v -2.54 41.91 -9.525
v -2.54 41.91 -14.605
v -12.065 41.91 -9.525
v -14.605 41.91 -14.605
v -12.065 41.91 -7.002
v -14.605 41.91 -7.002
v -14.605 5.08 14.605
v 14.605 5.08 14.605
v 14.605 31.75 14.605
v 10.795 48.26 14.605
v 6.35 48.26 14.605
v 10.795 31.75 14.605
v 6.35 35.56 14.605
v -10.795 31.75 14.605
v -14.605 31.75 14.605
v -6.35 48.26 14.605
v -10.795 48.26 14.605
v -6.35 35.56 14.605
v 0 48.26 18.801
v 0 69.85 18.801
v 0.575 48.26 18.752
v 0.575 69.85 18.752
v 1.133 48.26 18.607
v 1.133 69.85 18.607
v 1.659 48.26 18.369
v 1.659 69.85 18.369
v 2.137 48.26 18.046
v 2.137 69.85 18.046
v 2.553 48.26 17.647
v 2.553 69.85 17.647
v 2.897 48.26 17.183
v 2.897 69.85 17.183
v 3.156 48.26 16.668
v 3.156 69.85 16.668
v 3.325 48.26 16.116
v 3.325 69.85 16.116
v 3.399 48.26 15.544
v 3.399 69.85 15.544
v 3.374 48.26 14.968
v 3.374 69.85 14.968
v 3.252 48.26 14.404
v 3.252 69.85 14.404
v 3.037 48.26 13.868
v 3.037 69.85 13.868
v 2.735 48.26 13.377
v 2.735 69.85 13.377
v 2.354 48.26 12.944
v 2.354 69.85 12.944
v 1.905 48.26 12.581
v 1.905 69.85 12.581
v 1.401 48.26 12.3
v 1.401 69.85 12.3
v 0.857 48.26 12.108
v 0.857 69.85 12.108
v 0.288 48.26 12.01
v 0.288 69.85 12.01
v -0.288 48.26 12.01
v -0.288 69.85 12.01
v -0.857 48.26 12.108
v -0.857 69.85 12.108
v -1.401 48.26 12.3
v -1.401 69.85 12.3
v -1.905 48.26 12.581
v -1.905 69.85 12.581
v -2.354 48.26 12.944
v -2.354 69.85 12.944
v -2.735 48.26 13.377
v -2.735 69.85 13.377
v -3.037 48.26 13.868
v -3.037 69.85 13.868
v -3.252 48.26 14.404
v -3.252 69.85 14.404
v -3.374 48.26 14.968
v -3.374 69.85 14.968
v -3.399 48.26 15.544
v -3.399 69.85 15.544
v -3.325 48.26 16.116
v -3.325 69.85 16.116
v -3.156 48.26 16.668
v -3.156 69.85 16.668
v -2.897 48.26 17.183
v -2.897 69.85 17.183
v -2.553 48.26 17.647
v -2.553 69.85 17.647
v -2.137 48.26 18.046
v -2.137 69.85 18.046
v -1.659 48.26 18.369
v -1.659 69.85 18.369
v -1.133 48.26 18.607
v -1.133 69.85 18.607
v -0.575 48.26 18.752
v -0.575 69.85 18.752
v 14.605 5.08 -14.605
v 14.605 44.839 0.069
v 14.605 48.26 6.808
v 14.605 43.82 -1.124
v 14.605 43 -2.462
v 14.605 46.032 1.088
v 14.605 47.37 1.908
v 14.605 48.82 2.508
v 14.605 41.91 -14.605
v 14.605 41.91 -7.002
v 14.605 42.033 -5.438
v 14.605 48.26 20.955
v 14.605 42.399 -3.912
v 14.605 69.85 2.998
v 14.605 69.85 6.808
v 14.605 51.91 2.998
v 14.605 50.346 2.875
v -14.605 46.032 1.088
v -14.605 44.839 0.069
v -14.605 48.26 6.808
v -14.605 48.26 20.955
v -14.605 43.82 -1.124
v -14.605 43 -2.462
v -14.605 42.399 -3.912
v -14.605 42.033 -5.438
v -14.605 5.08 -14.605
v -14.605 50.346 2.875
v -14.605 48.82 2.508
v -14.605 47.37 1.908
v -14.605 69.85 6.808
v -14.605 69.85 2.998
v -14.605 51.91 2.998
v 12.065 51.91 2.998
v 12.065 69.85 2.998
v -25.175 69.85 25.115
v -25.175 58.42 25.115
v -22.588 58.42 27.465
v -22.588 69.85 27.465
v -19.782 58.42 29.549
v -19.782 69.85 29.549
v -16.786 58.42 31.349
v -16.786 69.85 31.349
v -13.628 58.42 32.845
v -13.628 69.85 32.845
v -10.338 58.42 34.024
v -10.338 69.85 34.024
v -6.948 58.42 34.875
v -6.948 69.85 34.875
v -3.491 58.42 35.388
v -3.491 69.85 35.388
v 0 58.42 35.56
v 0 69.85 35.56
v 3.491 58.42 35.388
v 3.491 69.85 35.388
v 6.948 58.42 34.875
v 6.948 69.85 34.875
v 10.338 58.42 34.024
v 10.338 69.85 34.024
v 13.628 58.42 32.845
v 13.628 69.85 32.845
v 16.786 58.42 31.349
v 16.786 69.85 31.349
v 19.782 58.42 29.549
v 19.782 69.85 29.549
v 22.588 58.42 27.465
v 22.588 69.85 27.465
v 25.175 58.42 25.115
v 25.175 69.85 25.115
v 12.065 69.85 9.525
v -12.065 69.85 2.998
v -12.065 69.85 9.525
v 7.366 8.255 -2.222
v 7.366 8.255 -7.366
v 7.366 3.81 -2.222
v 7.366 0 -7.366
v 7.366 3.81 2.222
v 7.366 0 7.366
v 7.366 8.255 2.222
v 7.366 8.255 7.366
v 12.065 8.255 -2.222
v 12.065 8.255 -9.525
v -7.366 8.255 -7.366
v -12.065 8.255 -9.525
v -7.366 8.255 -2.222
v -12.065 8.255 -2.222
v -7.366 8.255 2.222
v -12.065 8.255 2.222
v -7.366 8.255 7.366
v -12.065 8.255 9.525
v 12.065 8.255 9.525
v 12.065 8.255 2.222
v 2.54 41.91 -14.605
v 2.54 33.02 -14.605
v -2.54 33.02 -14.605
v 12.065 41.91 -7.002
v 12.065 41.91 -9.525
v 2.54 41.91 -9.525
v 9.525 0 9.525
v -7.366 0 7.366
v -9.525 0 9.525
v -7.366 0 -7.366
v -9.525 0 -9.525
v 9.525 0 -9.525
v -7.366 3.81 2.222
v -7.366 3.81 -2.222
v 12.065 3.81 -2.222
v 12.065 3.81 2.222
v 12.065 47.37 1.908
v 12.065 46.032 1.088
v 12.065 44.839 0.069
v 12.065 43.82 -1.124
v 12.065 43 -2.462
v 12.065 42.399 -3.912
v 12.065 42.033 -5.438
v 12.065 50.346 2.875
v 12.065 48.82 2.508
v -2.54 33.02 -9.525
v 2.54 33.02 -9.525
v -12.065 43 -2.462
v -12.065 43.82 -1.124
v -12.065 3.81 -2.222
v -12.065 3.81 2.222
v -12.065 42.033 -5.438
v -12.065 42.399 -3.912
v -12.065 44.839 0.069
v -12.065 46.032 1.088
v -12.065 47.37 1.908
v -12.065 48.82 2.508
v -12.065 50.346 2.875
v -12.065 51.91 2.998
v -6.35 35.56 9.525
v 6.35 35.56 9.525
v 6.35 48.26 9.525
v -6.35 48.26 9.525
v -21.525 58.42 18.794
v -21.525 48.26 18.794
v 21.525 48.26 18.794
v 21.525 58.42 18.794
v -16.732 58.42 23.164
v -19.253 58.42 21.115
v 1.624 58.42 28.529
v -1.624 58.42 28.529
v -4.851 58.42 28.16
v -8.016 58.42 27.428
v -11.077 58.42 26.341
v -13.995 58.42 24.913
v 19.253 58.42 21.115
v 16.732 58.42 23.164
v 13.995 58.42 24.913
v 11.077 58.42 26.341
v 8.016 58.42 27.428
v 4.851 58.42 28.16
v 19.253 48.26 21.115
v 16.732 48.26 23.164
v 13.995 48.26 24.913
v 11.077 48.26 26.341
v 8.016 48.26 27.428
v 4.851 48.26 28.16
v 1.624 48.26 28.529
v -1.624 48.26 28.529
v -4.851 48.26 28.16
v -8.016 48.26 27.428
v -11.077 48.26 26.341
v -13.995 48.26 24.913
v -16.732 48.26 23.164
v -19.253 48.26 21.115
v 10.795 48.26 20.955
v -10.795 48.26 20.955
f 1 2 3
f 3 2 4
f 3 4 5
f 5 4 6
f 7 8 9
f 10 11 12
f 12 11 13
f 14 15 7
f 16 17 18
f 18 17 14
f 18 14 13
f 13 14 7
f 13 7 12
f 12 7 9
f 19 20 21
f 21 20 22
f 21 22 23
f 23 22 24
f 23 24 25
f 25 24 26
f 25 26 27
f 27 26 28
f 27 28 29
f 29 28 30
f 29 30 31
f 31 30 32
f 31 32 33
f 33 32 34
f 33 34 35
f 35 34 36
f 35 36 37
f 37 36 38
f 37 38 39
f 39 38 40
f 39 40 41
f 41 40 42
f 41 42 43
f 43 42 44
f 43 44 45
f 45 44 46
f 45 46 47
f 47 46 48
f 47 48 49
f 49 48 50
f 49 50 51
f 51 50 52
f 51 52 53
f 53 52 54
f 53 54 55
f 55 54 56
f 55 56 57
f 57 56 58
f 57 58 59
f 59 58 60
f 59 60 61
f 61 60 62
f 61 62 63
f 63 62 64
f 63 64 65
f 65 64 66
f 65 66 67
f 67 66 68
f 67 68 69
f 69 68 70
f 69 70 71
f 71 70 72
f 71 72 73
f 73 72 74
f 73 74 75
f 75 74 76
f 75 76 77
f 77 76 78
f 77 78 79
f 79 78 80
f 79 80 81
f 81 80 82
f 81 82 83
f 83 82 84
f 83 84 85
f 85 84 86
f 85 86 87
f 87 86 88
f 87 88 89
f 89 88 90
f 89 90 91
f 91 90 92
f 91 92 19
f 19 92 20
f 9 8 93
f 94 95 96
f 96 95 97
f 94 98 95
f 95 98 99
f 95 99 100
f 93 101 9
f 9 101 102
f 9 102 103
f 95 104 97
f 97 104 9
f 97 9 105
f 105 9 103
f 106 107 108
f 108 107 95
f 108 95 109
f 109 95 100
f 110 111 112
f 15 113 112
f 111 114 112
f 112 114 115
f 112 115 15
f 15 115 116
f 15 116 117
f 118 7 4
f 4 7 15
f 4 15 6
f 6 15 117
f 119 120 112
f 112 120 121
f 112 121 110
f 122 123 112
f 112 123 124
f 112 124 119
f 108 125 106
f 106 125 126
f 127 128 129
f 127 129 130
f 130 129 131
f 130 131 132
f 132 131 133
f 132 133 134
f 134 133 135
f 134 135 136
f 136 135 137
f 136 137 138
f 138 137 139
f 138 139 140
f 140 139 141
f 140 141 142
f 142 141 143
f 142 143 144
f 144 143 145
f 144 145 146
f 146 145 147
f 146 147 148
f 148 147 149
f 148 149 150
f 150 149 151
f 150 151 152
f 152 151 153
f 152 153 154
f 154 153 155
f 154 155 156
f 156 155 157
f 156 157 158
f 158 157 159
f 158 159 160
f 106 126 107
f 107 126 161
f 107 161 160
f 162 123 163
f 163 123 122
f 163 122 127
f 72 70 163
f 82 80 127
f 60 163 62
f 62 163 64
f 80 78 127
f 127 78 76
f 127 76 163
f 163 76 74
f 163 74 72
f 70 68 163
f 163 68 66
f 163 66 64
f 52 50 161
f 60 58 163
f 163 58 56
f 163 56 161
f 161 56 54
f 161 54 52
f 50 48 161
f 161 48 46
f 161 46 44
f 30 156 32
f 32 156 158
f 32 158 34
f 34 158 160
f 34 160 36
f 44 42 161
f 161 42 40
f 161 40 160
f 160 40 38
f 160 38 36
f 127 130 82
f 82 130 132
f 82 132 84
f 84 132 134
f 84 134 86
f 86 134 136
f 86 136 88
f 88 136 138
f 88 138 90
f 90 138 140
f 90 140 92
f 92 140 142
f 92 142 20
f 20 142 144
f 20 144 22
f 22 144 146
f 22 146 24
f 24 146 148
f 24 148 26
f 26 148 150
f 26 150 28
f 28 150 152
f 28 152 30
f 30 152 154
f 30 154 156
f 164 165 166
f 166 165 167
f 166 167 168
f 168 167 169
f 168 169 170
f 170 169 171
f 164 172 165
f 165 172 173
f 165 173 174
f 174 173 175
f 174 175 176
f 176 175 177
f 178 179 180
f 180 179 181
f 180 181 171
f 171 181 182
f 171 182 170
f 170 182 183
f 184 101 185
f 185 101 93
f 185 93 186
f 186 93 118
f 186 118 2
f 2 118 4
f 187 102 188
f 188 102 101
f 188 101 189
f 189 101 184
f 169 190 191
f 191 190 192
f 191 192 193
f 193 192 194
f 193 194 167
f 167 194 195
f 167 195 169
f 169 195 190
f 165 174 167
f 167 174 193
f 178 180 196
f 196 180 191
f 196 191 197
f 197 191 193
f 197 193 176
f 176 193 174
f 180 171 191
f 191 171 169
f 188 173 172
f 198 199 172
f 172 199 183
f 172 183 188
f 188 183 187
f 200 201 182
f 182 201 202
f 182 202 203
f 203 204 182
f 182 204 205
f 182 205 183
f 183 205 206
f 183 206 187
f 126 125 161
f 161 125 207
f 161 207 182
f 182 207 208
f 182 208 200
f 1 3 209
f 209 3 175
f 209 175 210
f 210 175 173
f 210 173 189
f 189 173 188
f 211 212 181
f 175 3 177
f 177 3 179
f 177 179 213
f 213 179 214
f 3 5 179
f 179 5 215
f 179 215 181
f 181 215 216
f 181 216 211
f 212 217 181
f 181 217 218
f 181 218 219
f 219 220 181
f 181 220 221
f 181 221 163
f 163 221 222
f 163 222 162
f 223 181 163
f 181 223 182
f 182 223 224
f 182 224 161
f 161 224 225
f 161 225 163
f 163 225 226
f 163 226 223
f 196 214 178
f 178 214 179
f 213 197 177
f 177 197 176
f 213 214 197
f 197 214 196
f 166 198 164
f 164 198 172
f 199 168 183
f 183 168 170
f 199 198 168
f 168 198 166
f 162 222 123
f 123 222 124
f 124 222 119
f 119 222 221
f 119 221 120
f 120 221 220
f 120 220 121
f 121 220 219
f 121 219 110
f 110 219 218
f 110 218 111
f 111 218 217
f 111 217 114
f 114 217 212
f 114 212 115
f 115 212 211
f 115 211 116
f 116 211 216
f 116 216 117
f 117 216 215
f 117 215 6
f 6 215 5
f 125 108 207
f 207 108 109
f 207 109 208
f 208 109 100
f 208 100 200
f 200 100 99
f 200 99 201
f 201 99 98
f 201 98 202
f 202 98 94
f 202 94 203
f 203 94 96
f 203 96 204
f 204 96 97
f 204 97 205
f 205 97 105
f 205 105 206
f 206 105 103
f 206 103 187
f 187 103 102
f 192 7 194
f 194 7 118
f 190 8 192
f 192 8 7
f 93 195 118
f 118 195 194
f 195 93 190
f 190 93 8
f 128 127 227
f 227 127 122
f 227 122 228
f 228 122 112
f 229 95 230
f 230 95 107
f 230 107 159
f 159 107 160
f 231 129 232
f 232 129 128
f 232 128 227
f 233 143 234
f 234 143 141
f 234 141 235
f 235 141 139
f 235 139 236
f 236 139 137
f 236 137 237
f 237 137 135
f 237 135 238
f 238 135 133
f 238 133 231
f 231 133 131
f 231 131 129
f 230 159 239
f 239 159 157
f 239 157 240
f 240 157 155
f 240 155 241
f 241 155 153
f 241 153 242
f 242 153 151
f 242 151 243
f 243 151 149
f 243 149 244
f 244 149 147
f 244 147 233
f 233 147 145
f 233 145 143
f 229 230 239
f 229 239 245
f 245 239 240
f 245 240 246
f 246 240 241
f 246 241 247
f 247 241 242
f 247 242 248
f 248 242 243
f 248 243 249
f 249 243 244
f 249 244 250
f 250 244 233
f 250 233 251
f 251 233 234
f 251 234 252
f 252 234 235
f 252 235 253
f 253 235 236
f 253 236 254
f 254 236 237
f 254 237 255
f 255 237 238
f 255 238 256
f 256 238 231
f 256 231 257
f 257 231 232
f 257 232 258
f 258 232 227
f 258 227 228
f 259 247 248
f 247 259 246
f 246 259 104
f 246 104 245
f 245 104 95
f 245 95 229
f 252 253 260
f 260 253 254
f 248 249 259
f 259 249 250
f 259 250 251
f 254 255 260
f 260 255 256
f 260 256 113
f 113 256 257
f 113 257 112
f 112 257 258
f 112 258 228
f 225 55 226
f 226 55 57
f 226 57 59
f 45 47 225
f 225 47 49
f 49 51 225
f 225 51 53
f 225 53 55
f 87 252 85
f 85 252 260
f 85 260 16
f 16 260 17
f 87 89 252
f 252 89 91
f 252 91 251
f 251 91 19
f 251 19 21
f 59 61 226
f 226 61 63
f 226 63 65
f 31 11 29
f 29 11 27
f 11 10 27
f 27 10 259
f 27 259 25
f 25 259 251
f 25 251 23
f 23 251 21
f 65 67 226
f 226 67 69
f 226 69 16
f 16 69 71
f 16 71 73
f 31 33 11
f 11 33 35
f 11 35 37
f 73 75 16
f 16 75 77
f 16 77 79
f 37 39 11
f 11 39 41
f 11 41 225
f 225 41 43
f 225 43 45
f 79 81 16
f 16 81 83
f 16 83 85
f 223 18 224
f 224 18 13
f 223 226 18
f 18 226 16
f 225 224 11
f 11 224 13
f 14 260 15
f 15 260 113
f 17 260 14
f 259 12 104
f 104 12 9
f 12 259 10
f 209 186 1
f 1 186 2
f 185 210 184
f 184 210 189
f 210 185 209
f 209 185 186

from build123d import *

# Parameters (mm, degrees)
SKETCH1_W                = 29.21
SKETCH1_H                = 29.21
BOSS_EXTRUDE1_DEPTH      = 41.91
SKETCH2_W                = 14.732
SKETCH2_H                = 14.732
CUT_EXTRUDE1_DEPTH       = 8.255
SKETCH3_W                = 24.13
SKETCH3_H                = 19.05
CUT_EXTRUDE2_DEPTH       = 33.655
SKETCH6_W                = 4.699
SKETCH6_H                = 4.445
CUT_EXTRUDE3_DEPTH       = 4.445
BOSS_EXTRUDE2_DEPTH      = 27.94
FILLET1_R                = 10
CHAMFER2_SIZE            = 5.08
CUT_EXTRUDE4_DEPTH       = 27.94
CUT_EXTRUDE5_DEPTH       = 16.51
BOSS_EXTRUDE3_DEPTH      = 10.16
M6_CLEARANCE_HOLE1_D     = 6.8032
M6_CLEARANCE_HOLE1_DEPTH = 32.5000112
M6_CLEARANCE_HOLE1_TIP   = 2.043887482
SKETCH18_W               = 12.7
SKETCH18_H               = 16.067158518
CUT_EXTRUDE9_DEPTH       = 12.7
BOSS_EXTRUDE4_DEPTH      = 3.81
SKETCH19_W               = 5.08
SKETCH19_H               = 5.08
CUT_EXTRUDE10_DEPTH      = 8.89


with BuildPart() as part:
    # Sketch1 → Boss-Extrude1 (new body)
    with BuildSketch(Plane(origin=(0, 0, 0), x_dir=(1, 0, 0), z_dir=(0, 1, 0))):
        Rectangle(SKETCH1_W, SKETCH1_H)
    extrude(amount=BOSS_EXTRUDE1_DEPTH)

    # Sketch2 → Cut-Extrude1 (cut)
    with BuildSketch(Plane.XZ):
        Rectangle(SKETCH2_W, SKETCH2_H)
    extrude(amount=-CUT_EXTRUDE1_DEPTH, mode=Mode.SUBTRACT)

    # Sketch3 → Cut-Extrude2 (cut)
    with BuildSketch(Plane.XZ.offset(-8.255)):
        Rectangle(SKETCH3_W, SKETCH3_H)
    extrude(amount=-CUT_EXTRUDE2_DEPTH, mode=Mode.SUBTRACT)

    # Sketch6 → Cut-Extrude3 (cut)
    with BuildSketch(Plane(origin=(0, 8.255, 0), x_dir=(1, 0, 0), z_dir=(0, 1, 0))):
        with Locations((-9.7155, 0)):
            Rectangle(SKETCH6_W, SKETCH6_H)
    cut_extrude3 = extrude(amount=-CUT_EXTRUDE3_DEPTH, mode=Mode.SUBTRACT)

    # Mirror1: Cut-Extrude3 across plane
    add(cut_extrude3.mirror(Plane(origin=(0, 0, 0), x_dir=(0, 0, 1), z_dir=(1, 0, 0))), mode=Mode.SUBTRACT)

    # Sketch7 → Boss-Extrude2 (add)
    with BuildSketch(Plane(origin=(0, 41.91, 0), x_dir=(1, 0, 0), z_dir=(0, 1, 0))):
        with BuildLine():
            Line((-14.605, -2.997916359), (-35.433403696, -2.997916359))
            ThreePointArc((-35.433403696, -2.997916359), (0, -35.56), (35.433403696, -2.997916359))
            Line((35.433403696, -2.997916359), (14.605, -2.997916359))
            Line((14.605, -2.997916359), (14.605, -14.605))
            Line((14.605, -14.605), (-14.605, -14.605))
            Line((-14.605, -14.605), (-14.605, -2.997916359))
        make_face()
        Polygon((-12.065, -2.997916359), (-14.605, -2.997916359), (-14.605, -14.605), (14.605, -14.605), (14.605, -2.997916359), (12.065, -2.997916359), (12.065, -9.525), (-12.065, -9.525), align=None)
    extrude(amount=BOSS_EXTRUDE2_DEPTH)

    # Fillet1
    fillet1_edges = [part.edges().sort_by_distance(p)[0] for p in [
        (-13.335, 41.91, 2.997916359),
        (13.335, 41.91, 2.997916359),
    ]]
    fillet(fillet1_edges, radius=FILLET1_R)

    # Chamfer2
    chamfer2_edges = [part.edges().sort_by_distance(p)[0] for p in [
        (0, 0, 14.605),
        (-14.605, 0, 0),
        (0, 0, -14.605),
        (14.605, 0, 0),
    ]]
    chamfer(chamfer2_edges, length=CHAMFER2_SIZE)

    # Sketch8 → Cut-Extrude4 (cut)
    with BuildSketch(Plane(origin=(0, 69.85, 0), x_dir=(1, 0, 0), z_dir=(0, 1, 0))):
        with BuildLine():
            Line((-14.605, -2.997916359), (-35.433403696, -2.997916359))
            ThreePointArc((-35.433403696, -2.997916359), (-32.258645828, -14.963066843), (-25.174526181, -25.114872716))
            Line((-25.174526181, -25.114872716), (-14.605, -6.807916359))
            Line((-14.605, -6.807916359), (-14.605, -2.997916359))
        make_face()
    cut_extrude4 = extrude(amount=-CUT_EXTRUDE4_DEPTH, mode=Mode.SUBTRACT)

    # Mirror2: Cut-Extrude4 across plane
    add(cut_extrude4.mirror(Plane(origin=(0, 0, 0), x_dir=(0, 0, 1), z_dir=(1, 0, 0))), mode=Mode.SUBTRACT)

    # Sketch9 → Cut-Extrude5 (cut)
    with BuildSketch(Plane.XZ.offset(-41.91)):
        with BuildLine():
            Line((-14.605, 6.807916359), (-14.605, 14.605))
            Line((-14.605, 14.605), (14.605, 14.605))
            Line((14.605, 14.605), (14.605, 6.807916359))
            Line((14.605, 6.807916359), (25.174526181, 25.114872716))
            ThreePointArc((25.174526181, 25.114872716), (0, 35.56), (-25.174526181, 25.114872716))
            Line((-25.174526181, 25.114872716), (-14.605, 6.807916359))
        make_face()
    extrude(amount=-CUT_EXTRUDE5_DEPTH, mode=Mode.SUBTRACT)

    # Sketch11 → Boss-Extrude3 (add)
    with BuildSketch(Plane(origin=(0, 58.42, 0), x_dir=(-1, 0, 0), z_dir=(0, -1, 0))):
        with BuildLine():
            Line((14.605, -6.807916359), (14.605, -14.605))
            Line((14.605, -14.605), (-14.605, -14.605))
            Line((-14.605, -14.605), (-14.605, -6.807916359))
            Line((-14.605, -6.807916359), (-21.525014254, -18.793732635))
            ThreePointArc((-21.525014254, -18.793732635), (0, -28.575), (21.525014254, -18.793732635))
            Line((21.525014254, -18.793732635), (14.605, -6.807916359))
        make_face()
    extrude(amount=BOSS_EXTRUDE3_DEPTH)

    # M6 Clearance Hole1
    with Locations(Plane(origin=(0, 69.85, 0), x_dir=(1, 0, 0), z_dir=(0, 1, 0))):
        with Locations((0, -15.399579259)):
            Hole(M6_CLEARANCE_HOLE1_D / 2, depth=M6_CLEARANCE_HOLE1_DEPTH)
            with Locations((0, 0, -(M6_CLEARANCE_HOLE1_DEPTH + M6_CLEARANCE_HOLE1_TIP / 2))):  # 118° drill point
                Cone(0, M6_CLEARANCE_HOLE1_D / 2, M6_CLEARANCE_HOLE1_TIP, mode=Mode.SUBTRACT)

    # Sketch18 → Cut-Extrude9 (cut)
    with BuildSketch(Plane.XZ.offset(-48.26)):
        with Locations((0, 15.399579259)):
            Rectangle(SKETCH18_W, SKETCH18_H)
    extrude(amount=CUT_EXTRUDE9_DEPTH, mode=Mode.SUBTRACT)

    # Sketch14 → Boss-Extrude4 (add)
    with BuildSketch(Plane.ZY.offset(14.605)):
        Polygon((14.605, 48.26), (20.955, 48.26), (14.605, 31.75), align=None)
    boss_extrude4 = extrude(amount=-BOSS_EXTRUDE4_DEPTH)

    # Mirror3: Boss-Extrude4 across plane
    add(boss_extrude4.mirror(Plane(origin=(0, 0, 0), x_dir=(0, 0, 1), z_dir=(1, 0, 0))))

    # Sketch19 → Cut-Extrude10 (cut)
    with BuildSketch(Plane(origin=(0, 41.91, 0), x_dir=(1, 0, 0), z_dir=(0, 1, 0))):
        with Locations((0, 12.065)):
            Rectangle(SKETCH19_W, SKETCH19_H)
    extrude(amount=-CUT_EXTRUDE10_DEPTH, mode=Mode.SUBTRACT)


solid = part.part
